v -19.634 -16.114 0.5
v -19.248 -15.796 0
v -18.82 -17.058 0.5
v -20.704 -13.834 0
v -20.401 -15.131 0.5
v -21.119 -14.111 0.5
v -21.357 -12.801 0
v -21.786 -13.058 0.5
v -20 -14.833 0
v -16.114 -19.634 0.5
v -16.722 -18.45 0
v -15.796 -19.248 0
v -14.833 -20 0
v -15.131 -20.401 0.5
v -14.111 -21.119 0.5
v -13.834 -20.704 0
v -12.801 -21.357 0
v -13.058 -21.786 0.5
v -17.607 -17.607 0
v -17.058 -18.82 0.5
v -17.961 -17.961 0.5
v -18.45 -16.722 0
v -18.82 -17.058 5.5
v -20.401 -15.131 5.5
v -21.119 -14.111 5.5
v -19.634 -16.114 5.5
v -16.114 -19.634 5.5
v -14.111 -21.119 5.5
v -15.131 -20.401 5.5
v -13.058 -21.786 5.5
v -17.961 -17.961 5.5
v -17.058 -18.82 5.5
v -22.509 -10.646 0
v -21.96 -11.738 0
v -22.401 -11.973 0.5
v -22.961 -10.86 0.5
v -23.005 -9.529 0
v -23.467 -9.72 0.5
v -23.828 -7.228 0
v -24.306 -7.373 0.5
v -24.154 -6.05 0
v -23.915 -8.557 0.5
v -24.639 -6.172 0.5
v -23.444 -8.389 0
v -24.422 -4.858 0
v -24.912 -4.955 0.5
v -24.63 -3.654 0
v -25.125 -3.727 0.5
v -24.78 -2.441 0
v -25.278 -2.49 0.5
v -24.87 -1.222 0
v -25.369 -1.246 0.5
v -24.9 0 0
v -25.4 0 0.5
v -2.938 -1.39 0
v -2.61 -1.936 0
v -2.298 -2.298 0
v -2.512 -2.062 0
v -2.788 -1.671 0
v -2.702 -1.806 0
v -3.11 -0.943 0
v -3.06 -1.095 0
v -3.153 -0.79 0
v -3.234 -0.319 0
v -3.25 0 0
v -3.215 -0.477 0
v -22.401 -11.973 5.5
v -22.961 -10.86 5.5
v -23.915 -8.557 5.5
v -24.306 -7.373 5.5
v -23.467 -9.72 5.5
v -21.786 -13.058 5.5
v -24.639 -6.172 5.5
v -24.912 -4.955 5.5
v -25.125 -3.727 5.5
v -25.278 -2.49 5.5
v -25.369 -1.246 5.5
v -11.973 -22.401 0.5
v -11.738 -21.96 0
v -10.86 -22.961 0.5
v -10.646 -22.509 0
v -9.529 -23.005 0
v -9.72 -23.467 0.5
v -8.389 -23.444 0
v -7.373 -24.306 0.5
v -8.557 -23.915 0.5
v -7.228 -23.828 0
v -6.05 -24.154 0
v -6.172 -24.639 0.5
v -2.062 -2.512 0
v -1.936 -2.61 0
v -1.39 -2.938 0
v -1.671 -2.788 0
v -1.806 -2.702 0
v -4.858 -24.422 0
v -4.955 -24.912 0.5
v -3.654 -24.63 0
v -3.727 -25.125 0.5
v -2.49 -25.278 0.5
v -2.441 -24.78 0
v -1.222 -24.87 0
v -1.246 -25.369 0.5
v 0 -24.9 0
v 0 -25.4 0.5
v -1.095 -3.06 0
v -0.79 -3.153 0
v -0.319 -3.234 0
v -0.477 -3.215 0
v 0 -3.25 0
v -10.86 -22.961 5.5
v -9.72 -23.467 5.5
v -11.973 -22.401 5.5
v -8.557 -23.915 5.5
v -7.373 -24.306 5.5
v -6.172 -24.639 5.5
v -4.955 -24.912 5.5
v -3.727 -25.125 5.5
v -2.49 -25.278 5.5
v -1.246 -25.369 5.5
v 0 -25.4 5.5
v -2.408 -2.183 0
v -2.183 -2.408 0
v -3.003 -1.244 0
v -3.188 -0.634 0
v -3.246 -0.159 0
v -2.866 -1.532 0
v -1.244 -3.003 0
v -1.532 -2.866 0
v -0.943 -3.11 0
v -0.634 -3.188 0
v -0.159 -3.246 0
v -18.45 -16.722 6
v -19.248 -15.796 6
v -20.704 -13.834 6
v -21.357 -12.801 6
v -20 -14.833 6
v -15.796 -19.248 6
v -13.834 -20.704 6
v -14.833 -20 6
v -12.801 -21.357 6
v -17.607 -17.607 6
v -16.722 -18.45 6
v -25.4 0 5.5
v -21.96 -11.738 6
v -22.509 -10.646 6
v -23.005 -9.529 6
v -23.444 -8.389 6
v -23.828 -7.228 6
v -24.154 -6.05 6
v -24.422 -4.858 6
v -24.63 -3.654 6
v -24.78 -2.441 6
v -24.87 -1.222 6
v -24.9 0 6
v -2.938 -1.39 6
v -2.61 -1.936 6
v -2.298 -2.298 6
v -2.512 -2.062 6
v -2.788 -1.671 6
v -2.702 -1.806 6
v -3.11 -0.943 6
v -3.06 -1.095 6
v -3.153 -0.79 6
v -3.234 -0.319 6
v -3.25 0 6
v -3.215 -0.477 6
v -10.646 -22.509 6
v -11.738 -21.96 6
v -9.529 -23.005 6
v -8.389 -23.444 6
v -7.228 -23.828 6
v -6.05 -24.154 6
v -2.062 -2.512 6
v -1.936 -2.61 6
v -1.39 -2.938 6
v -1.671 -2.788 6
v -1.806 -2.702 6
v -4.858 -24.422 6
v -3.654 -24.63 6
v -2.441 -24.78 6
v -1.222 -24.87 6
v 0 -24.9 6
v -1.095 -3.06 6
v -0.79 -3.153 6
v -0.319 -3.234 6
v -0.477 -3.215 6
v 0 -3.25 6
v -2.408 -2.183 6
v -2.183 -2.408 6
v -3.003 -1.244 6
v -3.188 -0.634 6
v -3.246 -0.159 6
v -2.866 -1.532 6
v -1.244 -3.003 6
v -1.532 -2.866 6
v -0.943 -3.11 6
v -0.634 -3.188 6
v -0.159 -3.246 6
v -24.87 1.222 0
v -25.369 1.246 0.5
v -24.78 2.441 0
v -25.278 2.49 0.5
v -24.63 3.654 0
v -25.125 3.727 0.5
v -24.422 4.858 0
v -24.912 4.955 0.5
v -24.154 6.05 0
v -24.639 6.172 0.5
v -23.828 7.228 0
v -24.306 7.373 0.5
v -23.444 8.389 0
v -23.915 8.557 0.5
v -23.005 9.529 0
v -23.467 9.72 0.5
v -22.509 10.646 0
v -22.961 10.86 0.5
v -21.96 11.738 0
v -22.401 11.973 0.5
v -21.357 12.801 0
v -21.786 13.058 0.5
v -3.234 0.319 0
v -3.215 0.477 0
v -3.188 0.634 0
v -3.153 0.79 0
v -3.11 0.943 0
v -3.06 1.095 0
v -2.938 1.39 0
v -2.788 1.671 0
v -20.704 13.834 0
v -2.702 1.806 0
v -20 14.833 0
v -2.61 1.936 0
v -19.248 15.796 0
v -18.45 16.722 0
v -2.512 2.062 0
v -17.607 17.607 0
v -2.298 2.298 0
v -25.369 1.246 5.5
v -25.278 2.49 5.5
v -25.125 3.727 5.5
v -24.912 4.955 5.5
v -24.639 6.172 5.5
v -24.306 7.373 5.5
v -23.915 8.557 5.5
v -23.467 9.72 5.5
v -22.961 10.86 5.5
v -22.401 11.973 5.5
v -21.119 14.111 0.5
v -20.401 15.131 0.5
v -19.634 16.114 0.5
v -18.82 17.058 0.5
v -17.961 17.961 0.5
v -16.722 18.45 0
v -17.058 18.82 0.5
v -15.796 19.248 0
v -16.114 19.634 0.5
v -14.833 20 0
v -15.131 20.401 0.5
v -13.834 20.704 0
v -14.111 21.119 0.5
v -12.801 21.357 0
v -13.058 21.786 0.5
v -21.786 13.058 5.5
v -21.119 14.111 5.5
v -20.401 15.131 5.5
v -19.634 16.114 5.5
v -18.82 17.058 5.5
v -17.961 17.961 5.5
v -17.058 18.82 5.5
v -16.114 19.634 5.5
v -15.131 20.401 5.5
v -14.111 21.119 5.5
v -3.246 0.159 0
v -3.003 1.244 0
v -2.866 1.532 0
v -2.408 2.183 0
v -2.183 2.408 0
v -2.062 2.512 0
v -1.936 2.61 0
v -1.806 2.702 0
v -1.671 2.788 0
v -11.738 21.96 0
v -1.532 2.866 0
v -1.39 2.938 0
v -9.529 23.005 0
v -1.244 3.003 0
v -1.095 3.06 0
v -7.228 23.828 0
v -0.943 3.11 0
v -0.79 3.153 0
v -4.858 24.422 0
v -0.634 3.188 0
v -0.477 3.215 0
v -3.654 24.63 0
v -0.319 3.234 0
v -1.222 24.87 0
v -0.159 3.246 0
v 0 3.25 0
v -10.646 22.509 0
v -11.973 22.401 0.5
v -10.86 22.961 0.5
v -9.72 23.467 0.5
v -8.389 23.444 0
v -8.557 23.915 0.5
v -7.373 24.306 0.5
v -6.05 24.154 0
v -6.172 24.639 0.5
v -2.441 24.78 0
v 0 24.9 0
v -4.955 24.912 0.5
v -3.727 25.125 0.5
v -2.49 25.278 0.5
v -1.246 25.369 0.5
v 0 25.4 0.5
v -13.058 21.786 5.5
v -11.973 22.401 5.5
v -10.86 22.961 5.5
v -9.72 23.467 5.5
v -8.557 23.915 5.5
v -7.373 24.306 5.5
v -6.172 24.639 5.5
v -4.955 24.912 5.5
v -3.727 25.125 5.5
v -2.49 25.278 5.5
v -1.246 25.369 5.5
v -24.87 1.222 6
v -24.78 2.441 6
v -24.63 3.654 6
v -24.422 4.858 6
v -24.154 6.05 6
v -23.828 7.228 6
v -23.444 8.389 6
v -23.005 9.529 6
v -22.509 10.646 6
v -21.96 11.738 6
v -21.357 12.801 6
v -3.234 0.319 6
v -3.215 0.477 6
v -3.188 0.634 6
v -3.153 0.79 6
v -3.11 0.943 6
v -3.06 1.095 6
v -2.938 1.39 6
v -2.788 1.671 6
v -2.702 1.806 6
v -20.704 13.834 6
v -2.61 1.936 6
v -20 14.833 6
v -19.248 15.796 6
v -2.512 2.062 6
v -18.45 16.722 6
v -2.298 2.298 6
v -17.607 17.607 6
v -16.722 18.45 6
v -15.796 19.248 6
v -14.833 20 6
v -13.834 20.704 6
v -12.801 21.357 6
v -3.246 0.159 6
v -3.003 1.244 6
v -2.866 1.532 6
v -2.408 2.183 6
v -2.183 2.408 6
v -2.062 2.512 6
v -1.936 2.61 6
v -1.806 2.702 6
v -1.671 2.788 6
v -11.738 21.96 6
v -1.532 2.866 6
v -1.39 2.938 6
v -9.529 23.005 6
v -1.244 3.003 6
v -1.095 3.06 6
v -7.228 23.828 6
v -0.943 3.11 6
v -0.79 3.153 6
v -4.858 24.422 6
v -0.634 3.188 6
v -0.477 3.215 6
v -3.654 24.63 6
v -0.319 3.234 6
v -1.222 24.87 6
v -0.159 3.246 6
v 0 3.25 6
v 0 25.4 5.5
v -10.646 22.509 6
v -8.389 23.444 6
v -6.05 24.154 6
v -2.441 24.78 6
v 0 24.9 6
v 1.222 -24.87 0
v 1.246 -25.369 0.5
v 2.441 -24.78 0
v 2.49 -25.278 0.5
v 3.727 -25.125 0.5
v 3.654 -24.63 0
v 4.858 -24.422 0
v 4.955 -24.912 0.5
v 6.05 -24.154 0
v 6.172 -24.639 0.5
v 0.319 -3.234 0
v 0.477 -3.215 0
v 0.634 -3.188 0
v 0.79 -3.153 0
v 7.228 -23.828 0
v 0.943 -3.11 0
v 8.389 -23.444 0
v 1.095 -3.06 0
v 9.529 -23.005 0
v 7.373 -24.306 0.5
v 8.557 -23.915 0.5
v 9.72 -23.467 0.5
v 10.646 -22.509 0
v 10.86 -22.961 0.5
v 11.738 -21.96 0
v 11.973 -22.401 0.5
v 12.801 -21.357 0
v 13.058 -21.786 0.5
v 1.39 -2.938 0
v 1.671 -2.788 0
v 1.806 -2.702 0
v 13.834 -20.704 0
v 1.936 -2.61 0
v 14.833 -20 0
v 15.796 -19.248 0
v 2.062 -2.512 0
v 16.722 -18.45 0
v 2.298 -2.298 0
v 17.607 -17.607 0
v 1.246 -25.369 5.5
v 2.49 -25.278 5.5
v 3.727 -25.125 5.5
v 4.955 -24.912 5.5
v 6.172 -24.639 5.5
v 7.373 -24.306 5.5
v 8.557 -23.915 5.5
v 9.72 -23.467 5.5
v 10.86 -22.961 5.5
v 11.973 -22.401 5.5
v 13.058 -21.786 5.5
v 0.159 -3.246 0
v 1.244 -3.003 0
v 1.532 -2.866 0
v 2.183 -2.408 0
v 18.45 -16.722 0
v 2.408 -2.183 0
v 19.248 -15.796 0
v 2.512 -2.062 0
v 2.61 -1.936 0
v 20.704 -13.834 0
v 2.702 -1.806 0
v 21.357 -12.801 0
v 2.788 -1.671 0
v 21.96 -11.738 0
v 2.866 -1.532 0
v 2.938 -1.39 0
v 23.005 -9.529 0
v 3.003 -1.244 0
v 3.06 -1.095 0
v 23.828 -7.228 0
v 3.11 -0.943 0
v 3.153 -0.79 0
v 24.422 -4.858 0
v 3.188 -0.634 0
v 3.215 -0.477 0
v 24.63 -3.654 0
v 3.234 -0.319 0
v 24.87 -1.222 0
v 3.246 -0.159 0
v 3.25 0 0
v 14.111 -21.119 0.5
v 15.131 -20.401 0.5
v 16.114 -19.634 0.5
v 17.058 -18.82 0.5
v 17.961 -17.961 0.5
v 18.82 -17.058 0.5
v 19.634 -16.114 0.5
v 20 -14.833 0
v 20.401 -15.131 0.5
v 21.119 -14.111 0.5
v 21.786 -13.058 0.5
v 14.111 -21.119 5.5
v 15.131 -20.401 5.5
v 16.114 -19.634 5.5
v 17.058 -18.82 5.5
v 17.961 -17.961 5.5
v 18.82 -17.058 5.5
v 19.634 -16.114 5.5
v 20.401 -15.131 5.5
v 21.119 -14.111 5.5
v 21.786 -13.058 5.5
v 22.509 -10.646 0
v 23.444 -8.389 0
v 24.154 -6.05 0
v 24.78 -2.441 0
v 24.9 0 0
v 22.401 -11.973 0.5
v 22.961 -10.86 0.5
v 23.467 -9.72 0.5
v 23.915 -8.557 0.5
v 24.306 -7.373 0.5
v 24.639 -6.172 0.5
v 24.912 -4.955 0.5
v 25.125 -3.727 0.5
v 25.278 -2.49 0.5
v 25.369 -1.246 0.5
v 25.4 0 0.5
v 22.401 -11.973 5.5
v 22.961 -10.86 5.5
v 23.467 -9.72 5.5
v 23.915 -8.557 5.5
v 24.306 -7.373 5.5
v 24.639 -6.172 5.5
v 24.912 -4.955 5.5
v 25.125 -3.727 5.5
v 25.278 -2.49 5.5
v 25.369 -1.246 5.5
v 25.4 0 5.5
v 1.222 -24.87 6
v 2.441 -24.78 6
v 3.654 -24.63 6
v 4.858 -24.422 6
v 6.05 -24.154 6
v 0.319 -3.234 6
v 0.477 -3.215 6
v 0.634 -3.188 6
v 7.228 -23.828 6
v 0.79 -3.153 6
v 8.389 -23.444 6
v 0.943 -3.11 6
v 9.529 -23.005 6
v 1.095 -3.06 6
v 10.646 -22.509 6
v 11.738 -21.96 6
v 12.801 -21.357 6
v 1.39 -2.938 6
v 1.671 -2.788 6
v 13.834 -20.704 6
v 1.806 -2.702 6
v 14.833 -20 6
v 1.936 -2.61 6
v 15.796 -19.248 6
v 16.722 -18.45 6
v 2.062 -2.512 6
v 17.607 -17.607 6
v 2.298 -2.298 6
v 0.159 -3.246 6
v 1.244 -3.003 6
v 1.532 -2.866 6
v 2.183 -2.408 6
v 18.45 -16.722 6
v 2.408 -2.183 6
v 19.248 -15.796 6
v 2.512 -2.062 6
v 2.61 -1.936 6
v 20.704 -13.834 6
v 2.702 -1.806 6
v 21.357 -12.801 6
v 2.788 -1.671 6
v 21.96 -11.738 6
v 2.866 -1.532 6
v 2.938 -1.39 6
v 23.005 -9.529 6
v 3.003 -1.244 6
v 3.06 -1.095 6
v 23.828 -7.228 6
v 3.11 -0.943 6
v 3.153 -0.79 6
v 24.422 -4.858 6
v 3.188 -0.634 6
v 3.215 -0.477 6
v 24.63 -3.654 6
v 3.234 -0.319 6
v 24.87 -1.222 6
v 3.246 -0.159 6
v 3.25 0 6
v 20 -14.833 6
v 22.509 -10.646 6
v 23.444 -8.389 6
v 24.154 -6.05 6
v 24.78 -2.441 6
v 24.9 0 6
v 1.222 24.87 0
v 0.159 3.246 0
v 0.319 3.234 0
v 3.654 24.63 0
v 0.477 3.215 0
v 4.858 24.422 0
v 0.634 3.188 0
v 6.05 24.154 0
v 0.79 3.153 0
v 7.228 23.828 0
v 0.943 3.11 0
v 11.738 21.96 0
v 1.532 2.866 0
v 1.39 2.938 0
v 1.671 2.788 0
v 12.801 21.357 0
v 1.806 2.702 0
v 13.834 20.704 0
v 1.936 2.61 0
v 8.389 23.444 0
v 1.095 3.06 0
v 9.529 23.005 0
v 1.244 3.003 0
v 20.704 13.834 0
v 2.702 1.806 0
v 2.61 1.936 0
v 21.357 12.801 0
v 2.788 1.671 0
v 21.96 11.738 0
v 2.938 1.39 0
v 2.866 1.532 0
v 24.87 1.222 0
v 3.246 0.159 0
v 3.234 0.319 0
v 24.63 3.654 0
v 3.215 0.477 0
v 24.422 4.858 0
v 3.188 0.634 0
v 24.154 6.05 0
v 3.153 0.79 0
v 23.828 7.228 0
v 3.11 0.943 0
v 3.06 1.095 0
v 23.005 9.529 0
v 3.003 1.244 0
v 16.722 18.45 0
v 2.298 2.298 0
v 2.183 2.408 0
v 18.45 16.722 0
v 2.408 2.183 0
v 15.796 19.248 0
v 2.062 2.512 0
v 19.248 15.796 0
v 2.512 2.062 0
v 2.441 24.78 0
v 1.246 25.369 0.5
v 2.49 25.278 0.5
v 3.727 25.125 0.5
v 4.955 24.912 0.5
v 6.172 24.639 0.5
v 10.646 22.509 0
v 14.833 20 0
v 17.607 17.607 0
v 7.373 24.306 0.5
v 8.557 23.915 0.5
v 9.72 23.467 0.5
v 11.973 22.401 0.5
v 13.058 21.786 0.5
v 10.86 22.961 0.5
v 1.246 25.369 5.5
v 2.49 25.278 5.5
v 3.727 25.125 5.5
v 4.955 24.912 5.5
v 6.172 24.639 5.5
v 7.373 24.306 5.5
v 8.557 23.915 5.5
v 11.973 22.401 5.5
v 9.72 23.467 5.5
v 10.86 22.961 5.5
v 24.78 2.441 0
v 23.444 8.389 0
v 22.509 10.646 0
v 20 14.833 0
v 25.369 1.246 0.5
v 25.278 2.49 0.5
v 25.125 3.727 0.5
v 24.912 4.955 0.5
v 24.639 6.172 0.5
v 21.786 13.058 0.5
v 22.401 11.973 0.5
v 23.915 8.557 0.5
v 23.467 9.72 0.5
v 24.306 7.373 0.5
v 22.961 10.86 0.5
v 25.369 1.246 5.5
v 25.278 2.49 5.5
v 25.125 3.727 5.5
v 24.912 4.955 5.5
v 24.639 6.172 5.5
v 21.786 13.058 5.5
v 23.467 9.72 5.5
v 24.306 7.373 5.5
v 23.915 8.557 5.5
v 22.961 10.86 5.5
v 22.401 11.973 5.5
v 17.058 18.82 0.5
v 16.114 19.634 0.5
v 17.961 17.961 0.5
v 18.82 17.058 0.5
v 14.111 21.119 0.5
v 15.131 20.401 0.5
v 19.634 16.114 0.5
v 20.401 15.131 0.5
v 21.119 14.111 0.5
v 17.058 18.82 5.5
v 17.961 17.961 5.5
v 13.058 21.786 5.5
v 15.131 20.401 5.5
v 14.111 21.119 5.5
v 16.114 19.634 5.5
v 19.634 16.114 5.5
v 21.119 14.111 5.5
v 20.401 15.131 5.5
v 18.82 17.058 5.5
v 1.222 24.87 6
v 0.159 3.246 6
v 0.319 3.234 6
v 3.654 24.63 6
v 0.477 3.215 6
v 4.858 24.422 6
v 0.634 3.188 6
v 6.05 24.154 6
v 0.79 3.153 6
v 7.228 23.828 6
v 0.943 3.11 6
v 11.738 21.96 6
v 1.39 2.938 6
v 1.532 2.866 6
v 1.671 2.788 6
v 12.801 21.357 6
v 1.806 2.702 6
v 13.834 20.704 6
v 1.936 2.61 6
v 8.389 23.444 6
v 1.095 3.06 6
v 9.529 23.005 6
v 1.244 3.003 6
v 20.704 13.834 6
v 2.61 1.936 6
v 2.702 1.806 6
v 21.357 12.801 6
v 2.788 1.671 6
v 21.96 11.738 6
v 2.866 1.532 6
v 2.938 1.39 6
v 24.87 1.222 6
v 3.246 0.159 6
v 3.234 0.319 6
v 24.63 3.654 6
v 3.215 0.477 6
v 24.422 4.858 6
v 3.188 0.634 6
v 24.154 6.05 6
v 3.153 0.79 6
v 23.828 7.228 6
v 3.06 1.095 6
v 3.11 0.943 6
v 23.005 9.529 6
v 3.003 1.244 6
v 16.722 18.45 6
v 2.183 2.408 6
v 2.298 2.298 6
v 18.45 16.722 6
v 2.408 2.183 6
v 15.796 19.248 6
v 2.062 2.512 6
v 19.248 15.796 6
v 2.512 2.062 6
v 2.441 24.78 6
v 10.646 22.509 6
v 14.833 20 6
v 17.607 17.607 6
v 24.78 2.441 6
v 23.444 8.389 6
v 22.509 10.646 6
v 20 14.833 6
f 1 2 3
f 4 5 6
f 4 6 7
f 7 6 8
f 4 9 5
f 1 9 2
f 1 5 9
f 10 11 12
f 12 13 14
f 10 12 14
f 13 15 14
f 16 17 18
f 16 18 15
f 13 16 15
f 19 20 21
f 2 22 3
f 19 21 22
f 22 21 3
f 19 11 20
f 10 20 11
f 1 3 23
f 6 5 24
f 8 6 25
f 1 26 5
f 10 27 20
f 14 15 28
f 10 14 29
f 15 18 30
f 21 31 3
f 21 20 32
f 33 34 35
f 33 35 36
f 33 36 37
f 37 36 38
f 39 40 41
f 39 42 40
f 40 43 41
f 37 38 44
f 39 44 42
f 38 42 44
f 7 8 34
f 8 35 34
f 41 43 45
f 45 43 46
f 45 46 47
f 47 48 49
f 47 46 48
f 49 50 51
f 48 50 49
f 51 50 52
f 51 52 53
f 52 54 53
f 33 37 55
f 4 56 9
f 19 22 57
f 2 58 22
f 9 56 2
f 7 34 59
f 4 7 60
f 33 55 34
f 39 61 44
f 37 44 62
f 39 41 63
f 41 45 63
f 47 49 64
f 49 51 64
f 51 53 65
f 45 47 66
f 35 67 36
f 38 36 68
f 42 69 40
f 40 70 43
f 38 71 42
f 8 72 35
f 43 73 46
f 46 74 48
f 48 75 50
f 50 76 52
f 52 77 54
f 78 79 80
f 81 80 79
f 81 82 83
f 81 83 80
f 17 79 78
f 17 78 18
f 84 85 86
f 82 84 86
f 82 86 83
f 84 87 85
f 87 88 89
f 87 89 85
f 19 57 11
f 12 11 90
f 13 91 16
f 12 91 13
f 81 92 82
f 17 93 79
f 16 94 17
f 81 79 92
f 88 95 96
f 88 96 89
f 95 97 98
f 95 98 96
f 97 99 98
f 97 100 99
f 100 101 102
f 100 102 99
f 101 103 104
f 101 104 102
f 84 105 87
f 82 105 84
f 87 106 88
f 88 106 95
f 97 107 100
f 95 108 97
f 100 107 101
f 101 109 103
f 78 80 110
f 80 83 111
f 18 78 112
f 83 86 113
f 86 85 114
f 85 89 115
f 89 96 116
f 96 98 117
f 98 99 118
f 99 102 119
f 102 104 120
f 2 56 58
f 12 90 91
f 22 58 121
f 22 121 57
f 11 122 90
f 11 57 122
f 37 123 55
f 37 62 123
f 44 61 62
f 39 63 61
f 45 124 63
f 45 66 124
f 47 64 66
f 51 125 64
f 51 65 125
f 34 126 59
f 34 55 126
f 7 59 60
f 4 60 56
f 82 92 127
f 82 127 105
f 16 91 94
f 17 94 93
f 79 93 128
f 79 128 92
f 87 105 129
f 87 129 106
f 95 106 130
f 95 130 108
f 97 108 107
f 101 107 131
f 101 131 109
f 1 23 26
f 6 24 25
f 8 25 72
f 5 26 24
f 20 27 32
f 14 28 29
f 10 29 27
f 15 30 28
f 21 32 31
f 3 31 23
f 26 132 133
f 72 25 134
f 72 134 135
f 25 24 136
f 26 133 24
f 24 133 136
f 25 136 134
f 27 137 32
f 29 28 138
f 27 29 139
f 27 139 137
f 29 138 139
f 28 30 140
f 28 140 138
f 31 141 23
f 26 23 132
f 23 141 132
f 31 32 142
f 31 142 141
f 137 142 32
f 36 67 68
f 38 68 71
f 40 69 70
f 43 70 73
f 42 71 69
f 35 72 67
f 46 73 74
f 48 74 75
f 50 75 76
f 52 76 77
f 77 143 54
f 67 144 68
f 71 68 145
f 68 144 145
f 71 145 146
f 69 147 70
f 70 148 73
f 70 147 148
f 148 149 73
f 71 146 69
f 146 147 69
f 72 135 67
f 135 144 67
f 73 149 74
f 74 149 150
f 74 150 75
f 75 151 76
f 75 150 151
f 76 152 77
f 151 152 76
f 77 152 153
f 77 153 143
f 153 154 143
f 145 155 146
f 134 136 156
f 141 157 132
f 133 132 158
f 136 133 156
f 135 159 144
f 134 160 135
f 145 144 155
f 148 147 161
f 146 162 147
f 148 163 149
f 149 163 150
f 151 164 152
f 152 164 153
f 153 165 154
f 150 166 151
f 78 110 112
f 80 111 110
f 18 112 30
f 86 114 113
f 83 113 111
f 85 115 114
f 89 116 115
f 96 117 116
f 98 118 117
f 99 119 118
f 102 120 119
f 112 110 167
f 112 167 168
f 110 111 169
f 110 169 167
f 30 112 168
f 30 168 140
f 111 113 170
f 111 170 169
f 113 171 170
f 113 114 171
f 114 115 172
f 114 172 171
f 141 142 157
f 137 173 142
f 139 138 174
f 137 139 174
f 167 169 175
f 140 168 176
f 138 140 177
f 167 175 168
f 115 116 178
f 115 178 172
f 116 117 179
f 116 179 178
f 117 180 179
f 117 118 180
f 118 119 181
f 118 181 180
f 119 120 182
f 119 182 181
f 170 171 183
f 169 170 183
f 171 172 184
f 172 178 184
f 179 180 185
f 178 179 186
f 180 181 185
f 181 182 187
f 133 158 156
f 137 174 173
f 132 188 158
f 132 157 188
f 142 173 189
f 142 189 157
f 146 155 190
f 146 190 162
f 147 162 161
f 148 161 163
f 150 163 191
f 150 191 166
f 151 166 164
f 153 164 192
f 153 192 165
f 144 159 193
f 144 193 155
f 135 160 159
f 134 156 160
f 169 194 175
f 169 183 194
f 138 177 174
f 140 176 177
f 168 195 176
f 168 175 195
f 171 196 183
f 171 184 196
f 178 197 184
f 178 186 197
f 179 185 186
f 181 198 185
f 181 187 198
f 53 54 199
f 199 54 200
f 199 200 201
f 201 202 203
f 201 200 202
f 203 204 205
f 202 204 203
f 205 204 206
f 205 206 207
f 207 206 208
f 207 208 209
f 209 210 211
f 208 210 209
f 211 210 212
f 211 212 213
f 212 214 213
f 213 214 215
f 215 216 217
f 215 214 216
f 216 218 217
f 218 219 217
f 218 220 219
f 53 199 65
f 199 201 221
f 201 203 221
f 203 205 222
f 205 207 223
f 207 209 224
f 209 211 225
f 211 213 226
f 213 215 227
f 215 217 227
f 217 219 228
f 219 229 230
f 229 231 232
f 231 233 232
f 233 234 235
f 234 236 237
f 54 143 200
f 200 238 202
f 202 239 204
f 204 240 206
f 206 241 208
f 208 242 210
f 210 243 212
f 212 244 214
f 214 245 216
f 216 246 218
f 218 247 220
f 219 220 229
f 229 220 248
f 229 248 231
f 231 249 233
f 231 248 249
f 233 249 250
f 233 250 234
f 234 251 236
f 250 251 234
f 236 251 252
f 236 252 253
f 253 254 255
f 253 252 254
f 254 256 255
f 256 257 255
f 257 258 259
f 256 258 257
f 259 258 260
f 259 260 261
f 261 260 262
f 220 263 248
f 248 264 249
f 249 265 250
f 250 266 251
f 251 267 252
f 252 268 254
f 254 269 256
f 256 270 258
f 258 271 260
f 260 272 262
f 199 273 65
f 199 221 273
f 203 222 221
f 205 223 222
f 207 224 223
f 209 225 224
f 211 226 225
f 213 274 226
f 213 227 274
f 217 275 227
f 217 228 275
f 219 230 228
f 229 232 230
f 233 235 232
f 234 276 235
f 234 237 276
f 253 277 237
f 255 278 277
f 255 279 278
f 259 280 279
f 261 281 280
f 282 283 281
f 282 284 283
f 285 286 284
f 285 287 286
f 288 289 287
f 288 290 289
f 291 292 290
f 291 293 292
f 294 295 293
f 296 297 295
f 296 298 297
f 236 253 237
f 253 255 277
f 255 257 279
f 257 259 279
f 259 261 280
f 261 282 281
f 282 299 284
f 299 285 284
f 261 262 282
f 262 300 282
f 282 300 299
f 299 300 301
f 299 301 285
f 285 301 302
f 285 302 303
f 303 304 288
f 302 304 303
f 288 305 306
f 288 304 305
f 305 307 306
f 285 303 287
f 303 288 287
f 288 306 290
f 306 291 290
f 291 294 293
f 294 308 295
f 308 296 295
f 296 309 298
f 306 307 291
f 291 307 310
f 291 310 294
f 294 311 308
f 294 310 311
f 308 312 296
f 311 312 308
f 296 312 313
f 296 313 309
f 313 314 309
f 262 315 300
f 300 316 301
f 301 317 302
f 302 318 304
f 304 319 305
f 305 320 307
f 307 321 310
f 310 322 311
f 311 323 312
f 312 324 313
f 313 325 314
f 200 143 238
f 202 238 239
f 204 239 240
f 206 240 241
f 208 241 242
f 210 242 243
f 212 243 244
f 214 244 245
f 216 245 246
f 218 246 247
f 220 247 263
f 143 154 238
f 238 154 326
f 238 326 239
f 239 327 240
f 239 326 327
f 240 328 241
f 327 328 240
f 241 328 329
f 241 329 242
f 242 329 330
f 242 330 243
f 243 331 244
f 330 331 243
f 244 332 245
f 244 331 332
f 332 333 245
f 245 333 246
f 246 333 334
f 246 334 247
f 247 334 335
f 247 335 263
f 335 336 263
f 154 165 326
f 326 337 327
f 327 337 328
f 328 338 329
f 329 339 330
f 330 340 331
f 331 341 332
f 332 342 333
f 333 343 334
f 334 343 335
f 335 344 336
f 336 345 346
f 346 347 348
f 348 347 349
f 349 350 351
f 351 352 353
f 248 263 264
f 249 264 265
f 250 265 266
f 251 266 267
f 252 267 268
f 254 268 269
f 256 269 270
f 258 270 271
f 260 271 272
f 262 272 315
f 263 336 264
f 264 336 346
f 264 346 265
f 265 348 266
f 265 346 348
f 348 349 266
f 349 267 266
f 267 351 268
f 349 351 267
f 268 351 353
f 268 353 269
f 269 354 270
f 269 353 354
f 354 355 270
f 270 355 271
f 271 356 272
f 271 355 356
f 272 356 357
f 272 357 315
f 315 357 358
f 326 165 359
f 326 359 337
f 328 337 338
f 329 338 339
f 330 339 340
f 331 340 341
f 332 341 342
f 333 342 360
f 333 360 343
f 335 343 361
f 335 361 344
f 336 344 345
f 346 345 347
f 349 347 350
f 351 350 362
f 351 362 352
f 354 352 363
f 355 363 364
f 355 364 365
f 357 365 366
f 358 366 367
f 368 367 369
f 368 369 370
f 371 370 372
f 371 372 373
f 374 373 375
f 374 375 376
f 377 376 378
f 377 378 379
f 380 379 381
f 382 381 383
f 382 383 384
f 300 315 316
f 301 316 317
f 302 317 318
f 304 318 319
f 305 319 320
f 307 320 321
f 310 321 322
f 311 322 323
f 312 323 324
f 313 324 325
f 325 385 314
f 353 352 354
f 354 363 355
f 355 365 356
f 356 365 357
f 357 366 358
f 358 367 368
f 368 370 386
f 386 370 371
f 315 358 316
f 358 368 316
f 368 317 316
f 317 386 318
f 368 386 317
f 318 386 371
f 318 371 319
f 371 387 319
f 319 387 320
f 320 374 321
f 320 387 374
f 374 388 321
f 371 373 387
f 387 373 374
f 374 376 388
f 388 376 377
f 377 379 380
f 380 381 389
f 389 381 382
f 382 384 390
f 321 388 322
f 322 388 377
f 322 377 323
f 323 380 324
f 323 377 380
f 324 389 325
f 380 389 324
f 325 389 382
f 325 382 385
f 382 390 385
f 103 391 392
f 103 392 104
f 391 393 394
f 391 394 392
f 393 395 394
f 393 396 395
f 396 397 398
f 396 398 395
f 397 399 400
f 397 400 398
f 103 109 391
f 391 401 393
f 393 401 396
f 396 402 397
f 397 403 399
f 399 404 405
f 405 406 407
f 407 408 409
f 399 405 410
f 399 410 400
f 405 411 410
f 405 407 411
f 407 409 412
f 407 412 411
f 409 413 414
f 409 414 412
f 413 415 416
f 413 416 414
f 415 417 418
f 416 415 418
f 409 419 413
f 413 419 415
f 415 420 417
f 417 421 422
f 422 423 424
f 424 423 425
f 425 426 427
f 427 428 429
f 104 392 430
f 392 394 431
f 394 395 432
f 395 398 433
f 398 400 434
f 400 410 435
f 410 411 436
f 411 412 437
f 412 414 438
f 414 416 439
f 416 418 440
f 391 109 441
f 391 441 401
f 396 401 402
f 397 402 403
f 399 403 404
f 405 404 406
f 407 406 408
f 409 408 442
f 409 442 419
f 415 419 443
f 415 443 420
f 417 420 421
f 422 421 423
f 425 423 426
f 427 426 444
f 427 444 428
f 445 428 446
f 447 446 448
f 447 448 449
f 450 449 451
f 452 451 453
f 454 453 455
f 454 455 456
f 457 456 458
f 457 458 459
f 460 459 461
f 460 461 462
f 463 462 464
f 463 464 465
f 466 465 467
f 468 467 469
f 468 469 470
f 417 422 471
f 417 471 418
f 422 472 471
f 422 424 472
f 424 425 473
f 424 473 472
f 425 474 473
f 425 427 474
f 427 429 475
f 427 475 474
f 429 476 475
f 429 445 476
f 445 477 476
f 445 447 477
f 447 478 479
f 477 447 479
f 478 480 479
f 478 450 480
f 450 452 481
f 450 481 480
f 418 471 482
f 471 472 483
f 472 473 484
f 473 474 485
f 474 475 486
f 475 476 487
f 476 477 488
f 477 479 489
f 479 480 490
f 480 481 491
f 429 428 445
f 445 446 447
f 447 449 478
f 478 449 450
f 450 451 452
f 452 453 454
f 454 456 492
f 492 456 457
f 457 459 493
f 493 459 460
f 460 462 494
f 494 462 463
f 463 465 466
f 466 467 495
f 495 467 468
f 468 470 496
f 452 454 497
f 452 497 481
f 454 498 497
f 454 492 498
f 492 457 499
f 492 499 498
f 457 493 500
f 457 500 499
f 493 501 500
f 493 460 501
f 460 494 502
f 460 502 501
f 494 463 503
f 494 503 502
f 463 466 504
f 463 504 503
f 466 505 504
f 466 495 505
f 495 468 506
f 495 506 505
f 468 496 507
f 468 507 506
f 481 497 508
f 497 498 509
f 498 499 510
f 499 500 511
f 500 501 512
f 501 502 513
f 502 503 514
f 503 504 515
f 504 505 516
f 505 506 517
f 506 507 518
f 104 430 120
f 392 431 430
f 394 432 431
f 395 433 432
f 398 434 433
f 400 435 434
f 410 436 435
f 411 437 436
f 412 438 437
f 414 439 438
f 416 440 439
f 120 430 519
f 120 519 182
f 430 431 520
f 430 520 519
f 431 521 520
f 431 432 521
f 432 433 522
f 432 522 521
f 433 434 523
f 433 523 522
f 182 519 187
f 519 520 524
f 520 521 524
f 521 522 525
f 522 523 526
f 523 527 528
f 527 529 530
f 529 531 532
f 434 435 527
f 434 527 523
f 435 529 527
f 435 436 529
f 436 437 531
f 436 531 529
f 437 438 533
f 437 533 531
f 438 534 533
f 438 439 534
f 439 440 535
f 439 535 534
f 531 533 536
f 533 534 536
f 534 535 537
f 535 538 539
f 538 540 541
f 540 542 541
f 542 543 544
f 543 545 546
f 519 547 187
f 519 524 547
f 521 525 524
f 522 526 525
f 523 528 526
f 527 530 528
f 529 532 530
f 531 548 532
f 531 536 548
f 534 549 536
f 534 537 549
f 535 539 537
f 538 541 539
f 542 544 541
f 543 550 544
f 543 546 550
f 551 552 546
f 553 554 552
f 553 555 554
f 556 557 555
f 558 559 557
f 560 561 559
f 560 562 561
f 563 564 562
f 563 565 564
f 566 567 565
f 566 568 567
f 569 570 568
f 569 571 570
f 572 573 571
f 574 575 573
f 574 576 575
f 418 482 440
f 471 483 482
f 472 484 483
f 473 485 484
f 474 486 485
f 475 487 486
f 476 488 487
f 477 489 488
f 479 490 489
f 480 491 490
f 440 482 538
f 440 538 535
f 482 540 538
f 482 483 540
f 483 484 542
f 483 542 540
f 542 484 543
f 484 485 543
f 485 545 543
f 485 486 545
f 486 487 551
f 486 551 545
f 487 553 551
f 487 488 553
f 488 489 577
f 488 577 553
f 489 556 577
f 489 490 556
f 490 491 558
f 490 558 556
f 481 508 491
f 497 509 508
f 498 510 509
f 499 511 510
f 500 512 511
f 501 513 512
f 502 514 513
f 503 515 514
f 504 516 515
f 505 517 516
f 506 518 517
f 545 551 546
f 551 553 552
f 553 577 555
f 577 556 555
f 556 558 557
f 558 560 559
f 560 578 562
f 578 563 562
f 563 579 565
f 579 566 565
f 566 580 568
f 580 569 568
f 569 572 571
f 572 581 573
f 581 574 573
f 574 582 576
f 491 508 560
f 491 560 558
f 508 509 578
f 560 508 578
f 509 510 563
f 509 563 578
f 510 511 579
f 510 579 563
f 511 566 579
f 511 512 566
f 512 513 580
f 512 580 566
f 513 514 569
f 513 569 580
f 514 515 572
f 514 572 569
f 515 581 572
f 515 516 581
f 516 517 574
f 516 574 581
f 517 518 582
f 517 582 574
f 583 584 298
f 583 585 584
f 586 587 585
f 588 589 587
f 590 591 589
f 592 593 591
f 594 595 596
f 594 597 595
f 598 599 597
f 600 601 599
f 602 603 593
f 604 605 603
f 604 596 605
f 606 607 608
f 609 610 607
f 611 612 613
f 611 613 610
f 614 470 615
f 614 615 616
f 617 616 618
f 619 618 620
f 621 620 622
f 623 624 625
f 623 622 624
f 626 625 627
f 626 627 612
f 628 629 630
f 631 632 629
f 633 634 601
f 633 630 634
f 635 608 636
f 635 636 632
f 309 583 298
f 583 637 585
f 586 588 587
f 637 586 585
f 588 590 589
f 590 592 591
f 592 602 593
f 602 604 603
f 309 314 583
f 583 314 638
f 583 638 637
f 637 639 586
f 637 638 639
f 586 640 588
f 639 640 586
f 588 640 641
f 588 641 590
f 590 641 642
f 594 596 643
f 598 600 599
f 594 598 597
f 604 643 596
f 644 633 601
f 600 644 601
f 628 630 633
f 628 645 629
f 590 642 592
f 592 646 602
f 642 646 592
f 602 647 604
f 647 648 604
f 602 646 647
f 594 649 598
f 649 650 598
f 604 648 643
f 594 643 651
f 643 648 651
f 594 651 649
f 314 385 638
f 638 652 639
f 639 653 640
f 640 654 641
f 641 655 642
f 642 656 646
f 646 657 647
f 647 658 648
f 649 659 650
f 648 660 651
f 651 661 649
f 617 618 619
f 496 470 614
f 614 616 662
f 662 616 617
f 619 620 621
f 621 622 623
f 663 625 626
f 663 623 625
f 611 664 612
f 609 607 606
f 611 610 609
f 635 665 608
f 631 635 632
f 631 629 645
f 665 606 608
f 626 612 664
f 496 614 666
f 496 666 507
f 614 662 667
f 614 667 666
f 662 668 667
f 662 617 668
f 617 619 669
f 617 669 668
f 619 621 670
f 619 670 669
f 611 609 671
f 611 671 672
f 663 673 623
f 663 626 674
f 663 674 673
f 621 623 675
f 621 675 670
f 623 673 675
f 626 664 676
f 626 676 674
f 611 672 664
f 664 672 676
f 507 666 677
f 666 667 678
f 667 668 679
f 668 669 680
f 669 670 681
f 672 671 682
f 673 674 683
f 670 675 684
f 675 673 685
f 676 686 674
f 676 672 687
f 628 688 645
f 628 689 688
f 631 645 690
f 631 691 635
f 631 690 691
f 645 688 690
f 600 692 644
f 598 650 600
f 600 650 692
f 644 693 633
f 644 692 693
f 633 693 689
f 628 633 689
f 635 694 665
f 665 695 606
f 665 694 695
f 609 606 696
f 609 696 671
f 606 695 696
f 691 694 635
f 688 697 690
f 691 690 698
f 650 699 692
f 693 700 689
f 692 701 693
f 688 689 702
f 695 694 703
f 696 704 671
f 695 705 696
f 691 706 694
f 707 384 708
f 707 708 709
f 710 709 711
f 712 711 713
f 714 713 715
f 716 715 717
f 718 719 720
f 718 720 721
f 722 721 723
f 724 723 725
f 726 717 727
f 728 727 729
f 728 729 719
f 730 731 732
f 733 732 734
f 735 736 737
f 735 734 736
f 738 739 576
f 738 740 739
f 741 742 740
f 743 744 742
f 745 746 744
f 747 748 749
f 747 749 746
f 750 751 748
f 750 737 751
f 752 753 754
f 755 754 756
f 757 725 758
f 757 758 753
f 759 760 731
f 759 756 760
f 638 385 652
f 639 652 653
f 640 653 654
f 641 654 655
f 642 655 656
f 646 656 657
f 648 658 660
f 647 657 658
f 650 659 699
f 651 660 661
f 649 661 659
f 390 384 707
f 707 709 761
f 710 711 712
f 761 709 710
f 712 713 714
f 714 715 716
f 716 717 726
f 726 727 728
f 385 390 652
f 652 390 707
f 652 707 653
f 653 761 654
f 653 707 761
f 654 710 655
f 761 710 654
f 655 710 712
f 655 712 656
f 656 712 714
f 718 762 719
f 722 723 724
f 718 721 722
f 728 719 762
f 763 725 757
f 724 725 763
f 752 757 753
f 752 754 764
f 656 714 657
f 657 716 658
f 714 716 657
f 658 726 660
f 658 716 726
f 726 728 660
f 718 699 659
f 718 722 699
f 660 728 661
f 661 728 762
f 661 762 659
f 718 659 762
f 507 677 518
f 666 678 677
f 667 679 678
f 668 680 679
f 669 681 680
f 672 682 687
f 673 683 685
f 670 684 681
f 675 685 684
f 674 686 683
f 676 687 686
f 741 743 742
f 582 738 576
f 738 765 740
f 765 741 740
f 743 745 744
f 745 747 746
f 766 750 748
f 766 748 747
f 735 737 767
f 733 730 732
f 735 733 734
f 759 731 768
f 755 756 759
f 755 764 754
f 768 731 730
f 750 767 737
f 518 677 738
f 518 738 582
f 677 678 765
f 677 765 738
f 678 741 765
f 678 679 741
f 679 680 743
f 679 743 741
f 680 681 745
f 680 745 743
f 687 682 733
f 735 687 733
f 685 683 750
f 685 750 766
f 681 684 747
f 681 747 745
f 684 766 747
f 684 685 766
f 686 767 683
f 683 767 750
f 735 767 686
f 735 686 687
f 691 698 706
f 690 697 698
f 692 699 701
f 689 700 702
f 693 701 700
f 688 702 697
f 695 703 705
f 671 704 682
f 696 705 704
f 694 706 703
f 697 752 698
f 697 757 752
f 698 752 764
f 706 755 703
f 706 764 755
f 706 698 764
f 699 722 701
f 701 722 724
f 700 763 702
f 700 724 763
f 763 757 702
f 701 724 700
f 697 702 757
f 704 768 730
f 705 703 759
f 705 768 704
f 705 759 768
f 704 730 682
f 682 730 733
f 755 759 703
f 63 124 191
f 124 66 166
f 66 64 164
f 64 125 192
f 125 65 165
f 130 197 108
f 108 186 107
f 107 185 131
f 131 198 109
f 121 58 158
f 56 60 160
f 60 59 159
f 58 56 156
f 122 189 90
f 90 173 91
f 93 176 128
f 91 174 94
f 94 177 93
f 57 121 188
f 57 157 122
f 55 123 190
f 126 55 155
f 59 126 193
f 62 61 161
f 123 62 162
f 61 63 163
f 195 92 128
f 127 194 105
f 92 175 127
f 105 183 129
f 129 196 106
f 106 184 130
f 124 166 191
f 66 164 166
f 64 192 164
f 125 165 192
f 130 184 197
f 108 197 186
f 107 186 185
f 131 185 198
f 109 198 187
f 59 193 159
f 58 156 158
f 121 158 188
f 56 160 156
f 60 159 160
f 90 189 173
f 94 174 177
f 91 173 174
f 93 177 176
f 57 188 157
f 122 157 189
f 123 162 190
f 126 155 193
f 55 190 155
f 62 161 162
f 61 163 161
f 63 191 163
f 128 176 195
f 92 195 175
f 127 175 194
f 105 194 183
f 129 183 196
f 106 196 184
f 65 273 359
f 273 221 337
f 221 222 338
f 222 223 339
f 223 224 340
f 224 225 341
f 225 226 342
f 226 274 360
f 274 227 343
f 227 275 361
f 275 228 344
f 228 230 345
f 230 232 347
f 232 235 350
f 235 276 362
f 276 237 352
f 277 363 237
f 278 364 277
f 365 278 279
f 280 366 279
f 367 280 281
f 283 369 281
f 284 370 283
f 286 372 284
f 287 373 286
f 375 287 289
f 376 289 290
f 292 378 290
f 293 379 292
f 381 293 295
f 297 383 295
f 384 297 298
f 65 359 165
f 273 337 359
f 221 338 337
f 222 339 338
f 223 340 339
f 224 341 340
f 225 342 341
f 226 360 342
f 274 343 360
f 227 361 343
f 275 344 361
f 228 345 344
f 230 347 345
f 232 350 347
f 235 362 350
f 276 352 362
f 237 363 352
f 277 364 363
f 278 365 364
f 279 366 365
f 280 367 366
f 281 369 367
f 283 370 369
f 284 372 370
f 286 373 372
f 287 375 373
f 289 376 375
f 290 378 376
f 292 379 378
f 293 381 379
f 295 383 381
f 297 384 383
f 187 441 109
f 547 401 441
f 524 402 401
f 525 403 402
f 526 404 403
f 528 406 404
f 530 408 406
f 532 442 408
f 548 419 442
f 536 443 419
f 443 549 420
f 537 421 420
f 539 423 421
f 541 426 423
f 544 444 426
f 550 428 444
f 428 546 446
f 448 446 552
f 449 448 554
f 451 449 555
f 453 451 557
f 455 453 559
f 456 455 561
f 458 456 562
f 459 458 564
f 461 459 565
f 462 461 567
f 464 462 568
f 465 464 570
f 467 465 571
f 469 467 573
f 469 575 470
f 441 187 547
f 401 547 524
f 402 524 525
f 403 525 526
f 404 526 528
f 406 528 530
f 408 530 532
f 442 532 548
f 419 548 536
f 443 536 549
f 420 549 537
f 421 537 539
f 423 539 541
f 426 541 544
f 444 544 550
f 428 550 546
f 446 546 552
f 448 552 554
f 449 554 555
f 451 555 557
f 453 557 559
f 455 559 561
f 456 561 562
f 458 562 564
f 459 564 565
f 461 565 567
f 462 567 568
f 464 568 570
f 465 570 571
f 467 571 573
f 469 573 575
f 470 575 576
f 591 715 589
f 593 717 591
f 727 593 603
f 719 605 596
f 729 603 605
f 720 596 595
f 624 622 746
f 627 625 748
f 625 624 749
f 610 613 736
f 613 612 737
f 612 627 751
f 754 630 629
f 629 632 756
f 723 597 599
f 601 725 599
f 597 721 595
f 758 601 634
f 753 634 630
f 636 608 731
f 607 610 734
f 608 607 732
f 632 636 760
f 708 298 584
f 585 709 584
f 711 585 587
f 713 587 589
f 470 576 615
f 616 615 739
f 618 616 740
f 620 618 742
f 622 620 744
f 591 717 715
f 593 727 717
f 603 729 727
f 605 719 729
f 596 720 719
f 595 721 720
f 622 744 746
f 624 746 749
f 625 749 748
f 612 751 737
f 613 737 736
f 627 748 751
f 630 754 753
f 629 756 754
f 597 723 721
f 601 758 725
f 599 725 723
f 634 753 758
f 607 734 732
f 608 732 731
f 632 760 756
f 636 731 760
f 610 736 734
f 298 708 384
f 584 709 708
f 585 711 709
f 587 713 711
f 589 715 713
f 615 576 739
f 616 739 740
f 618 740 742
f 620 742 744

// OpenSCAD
// SPDX-License-Identifier: CC-BY-4.0
// SPDX-FileCopyrightText: 2026 Todd Sayre
// Round washer — a flat annular disc with a concentric through bore.
// All dimensions are millimetres. Defaults are a shelf-spacer trial, not a load rating.
// Print as modelled, flat face on the plate and bore axis vertical.
// Outer edge chamfers are 45 degrees; no supports or bridges are needed.

// ===== DIMENSIONS =====
// Measure an existing washer or choose the finished dimensions you need.

// Inner diameter (ID) of the through bore (mm) — inside jaws at the bore
// opening, 6 in caliper. Include any desired fit clearance in this value.
inner_diameter = 6.5;

// Outer diameter (OD) of the washer (mm) — outside jaws across the rim,
// 6 in caliper.
outer_diameter = 50.8;

// Axial thickness between the two flat faces (mm) — outside jaws on the
// faces, 6 in caliper.
thickness = 6;

// ===== TUNE THESE =====
// Equal radial run and axial rise on both outer edges (mm); zero disables.
edge_chamfer = 0.5;
$fn = 128;

// ===== DERIVED =====
radial_width = (outer_diameter - inner_diameter) / 2;
outer_radius = outer_diameter / 2;
bearing_diameter = outer_diameter - 2 * edge_chamfer;
// Extend the bore past both faces so the cut has no coincident end faces.
cut_overlap = 0.01;

assert(inner_diameter > 0, "inner_diameter must be positive to leave a through bore");
assert(radial_width > 0, "outer_diameter must exceed inner_diameter to leave material around the bore");
assert(thickness > 0, "thickness must be positive");
assert(edge_chamfer >= 0, "edge_chamfer must not be negative");
assert(2 * edge_chamfer < thickness, "edge chamfers must leave a straight outer wall");
assert(edge_chamfer < radial_width, "edge chamfers must leave flat bearing faces around the bore");

echo(str("inner diameter (ID) = ", inner_diameter, " mm"));
echo(str("outer diameter (OD) = ", outer_diameter, " mm"));
echo(str("thickness = ", thickness, " mm"));
echo(str("radial width = ", radial_width, " mm"));
echo(str("outer edge chamfer = ", edge_chamfer, " mm at 45 degrees"));
echo(str("flat bearing diameter = ", bearing_diameter, " mm"));

module round_washer() {
  difference() {
    if (edge_chamfer == 0)
      cylinder(d = outer_diameter, h = thickness);
    else
      rotate_extrude()
        polygon([
          [0, 0],
          [outer_radius - edge_chamfer, 0],
          [outer_radius, edge_chamfer],
          [outer_radius, thickness - edge_chamfer],
          [outer_radius - edge_chamfer, thickness],
          [0, thickness]
        ]);
    translate([0, 0, -cut_overlap])
      cylinder(d = inner_diameter, h = thickness + 2 * cut_overlap);
  }
}

round_washer();
